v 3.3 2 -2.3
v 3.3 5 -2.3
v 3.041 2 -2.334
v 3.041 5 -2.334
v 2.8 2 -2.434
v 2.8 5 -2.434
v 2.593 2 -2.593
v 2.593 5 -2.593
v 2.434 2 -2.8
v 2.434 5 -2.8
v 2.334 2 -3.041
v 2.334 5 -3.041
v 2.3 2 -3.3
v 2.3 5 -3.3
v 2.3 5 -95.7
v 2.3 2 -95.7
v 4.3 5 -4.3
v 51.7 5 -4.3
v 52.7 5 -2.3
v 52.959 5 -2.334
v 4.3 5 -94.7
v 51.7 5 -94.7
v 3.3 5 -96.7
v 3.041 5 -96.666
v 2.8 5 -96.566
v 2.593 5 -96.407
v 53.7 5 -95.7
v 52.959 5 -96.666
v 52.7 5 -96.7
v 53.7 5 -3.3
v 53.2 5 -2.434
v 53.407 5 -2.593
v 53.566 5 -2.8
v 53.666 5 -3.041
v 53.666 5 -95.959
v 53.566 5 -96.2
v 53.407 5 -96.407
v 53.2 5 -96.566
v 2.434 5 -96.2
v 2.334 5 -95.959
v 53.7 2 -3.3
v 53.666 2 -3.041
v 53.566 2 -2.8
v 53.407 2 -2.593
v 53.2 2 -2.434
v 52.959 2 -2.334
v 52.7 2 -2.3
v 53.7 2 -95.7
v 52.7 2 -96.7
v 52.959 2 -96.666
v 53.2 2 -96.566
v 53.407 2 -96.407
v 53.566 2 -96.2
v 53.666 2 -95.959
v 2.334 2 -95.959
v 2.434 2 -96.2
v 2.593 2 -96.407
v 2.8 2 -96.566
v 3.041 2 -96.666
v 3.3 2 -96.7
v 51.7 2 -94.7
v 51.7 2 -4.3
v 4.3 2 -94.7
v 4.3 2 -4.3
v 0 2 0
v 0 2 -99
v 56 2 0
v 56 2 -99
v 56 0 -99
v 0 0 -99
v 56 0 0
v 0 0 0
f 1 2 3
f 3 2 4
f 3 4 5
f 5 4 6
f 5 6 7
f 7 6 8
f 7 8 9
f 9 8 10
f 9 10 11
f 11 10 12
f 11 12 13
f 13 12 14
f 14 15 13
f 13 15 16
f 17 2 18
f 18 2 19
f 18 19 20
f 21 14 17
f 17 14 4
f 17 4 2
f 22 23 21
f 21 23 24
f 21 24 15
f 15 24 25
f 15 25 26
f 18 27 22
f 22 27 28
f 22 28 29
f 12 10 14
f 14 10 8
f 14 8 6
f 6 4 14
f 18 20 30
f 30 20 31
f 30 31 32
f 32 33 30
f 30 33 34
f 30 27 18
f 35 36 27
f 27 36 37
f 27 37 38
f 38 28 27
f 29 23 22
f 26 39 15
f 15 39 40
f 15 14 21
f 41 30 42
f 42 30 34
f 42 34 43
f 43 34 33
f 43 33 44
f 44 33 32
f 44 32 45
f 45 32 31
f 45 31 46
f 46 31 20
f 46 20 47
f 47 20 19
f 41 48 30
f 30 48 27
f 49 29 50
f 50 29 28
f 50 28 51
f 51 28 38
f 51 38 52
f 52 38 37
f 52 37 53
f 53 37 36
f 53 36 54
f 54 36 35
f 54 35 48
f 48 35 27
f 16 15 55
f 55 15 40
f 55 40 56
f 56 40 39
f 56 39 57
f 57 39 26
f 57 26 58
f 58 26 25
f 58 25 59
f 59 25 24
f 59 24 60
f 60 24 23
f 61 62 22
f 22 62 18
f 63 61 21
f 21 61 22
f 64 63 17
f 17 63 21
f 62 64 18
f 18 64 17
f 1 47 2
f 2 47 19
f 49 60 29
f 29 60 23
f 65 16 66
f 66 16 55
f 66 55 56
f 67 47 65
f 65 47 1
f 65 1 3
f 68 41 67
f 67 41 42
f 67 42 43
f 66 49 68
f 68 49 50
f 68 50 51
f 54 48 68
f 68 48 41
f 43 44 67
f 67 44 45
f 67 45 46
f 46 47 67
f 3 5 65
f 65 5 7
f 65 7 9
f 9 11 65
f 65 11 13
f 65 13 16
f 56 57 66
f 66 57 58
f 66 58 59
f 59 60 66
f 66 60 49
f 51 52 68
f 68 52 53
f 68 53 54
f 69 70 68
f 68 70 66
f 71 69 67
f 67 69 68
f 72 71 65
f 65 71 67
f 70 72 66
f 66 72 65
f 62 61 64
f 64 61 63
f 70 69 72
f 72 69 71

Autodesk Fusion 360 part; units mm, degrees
sketch "Boceto1" plane through (0, 0, 0) normal (0, 1, 0) x (1, 0, 0)
  line L0 (0, 0) -> (56, 0)
  line L1 (56, 0) -> (56, 99)
  line L2 (56, 99) -> (0, 99)
  line L3 (0, 99) -> (0, 0)
  dimension "d1" = 99
  dimension "d2" = 56
extrude "Extruir1" add sketch "Boceto1" along normal blind 2
sketch "Boceto2" plane through (0, 2, 0) normal (0, 1, 0) x (-1, 0, 0)
  line L0 (0, -99) -> (0, 0)
  line L1 (0, 0) -> (-56, 0)
  line L2 (-56, 0) -> (-56, -99)
  line L3 (-56, -99) -> (0, -99)
  line L4 (-2.3, -96.7) -> (-2.3, -2.3)
  line L5 (-2.3, -2.3) -> (-53.7, -2.3)
  line L6 (-53.7, -2.3) -> (-53.7, -96.7)
  line L7 (-53.7, -96.7) -> (-2.3, -96.7)
  line L8 (-4.3, -94.7) -> (-51.7, -94.7)
  line L9 (-51.7, -94.7) -> (-51.7, -4.3)
  line L10 (-51.7, -4.3) -> (-4.3, -4.3)
  line L11 (-4.3, -4.3) -> (-4.3, -94.7)
  dimension "d5" = -2.3
  dimension "d6" = 2
  dimension "d7" = 2
  dimension "d8" = 2
  dimension "d9" = 2
extrude "Extruir2" add sketch "Boceto2" along normal blind 3 contours L4 L5 L6 L7
fillet "Empalme1" radius 1 4 edges at (2.3, 3.5, -96.7) (53.7, 3.5, -96.7) (53.7, 3.5, -2.3) (2.3, 3.5, -2.3)
